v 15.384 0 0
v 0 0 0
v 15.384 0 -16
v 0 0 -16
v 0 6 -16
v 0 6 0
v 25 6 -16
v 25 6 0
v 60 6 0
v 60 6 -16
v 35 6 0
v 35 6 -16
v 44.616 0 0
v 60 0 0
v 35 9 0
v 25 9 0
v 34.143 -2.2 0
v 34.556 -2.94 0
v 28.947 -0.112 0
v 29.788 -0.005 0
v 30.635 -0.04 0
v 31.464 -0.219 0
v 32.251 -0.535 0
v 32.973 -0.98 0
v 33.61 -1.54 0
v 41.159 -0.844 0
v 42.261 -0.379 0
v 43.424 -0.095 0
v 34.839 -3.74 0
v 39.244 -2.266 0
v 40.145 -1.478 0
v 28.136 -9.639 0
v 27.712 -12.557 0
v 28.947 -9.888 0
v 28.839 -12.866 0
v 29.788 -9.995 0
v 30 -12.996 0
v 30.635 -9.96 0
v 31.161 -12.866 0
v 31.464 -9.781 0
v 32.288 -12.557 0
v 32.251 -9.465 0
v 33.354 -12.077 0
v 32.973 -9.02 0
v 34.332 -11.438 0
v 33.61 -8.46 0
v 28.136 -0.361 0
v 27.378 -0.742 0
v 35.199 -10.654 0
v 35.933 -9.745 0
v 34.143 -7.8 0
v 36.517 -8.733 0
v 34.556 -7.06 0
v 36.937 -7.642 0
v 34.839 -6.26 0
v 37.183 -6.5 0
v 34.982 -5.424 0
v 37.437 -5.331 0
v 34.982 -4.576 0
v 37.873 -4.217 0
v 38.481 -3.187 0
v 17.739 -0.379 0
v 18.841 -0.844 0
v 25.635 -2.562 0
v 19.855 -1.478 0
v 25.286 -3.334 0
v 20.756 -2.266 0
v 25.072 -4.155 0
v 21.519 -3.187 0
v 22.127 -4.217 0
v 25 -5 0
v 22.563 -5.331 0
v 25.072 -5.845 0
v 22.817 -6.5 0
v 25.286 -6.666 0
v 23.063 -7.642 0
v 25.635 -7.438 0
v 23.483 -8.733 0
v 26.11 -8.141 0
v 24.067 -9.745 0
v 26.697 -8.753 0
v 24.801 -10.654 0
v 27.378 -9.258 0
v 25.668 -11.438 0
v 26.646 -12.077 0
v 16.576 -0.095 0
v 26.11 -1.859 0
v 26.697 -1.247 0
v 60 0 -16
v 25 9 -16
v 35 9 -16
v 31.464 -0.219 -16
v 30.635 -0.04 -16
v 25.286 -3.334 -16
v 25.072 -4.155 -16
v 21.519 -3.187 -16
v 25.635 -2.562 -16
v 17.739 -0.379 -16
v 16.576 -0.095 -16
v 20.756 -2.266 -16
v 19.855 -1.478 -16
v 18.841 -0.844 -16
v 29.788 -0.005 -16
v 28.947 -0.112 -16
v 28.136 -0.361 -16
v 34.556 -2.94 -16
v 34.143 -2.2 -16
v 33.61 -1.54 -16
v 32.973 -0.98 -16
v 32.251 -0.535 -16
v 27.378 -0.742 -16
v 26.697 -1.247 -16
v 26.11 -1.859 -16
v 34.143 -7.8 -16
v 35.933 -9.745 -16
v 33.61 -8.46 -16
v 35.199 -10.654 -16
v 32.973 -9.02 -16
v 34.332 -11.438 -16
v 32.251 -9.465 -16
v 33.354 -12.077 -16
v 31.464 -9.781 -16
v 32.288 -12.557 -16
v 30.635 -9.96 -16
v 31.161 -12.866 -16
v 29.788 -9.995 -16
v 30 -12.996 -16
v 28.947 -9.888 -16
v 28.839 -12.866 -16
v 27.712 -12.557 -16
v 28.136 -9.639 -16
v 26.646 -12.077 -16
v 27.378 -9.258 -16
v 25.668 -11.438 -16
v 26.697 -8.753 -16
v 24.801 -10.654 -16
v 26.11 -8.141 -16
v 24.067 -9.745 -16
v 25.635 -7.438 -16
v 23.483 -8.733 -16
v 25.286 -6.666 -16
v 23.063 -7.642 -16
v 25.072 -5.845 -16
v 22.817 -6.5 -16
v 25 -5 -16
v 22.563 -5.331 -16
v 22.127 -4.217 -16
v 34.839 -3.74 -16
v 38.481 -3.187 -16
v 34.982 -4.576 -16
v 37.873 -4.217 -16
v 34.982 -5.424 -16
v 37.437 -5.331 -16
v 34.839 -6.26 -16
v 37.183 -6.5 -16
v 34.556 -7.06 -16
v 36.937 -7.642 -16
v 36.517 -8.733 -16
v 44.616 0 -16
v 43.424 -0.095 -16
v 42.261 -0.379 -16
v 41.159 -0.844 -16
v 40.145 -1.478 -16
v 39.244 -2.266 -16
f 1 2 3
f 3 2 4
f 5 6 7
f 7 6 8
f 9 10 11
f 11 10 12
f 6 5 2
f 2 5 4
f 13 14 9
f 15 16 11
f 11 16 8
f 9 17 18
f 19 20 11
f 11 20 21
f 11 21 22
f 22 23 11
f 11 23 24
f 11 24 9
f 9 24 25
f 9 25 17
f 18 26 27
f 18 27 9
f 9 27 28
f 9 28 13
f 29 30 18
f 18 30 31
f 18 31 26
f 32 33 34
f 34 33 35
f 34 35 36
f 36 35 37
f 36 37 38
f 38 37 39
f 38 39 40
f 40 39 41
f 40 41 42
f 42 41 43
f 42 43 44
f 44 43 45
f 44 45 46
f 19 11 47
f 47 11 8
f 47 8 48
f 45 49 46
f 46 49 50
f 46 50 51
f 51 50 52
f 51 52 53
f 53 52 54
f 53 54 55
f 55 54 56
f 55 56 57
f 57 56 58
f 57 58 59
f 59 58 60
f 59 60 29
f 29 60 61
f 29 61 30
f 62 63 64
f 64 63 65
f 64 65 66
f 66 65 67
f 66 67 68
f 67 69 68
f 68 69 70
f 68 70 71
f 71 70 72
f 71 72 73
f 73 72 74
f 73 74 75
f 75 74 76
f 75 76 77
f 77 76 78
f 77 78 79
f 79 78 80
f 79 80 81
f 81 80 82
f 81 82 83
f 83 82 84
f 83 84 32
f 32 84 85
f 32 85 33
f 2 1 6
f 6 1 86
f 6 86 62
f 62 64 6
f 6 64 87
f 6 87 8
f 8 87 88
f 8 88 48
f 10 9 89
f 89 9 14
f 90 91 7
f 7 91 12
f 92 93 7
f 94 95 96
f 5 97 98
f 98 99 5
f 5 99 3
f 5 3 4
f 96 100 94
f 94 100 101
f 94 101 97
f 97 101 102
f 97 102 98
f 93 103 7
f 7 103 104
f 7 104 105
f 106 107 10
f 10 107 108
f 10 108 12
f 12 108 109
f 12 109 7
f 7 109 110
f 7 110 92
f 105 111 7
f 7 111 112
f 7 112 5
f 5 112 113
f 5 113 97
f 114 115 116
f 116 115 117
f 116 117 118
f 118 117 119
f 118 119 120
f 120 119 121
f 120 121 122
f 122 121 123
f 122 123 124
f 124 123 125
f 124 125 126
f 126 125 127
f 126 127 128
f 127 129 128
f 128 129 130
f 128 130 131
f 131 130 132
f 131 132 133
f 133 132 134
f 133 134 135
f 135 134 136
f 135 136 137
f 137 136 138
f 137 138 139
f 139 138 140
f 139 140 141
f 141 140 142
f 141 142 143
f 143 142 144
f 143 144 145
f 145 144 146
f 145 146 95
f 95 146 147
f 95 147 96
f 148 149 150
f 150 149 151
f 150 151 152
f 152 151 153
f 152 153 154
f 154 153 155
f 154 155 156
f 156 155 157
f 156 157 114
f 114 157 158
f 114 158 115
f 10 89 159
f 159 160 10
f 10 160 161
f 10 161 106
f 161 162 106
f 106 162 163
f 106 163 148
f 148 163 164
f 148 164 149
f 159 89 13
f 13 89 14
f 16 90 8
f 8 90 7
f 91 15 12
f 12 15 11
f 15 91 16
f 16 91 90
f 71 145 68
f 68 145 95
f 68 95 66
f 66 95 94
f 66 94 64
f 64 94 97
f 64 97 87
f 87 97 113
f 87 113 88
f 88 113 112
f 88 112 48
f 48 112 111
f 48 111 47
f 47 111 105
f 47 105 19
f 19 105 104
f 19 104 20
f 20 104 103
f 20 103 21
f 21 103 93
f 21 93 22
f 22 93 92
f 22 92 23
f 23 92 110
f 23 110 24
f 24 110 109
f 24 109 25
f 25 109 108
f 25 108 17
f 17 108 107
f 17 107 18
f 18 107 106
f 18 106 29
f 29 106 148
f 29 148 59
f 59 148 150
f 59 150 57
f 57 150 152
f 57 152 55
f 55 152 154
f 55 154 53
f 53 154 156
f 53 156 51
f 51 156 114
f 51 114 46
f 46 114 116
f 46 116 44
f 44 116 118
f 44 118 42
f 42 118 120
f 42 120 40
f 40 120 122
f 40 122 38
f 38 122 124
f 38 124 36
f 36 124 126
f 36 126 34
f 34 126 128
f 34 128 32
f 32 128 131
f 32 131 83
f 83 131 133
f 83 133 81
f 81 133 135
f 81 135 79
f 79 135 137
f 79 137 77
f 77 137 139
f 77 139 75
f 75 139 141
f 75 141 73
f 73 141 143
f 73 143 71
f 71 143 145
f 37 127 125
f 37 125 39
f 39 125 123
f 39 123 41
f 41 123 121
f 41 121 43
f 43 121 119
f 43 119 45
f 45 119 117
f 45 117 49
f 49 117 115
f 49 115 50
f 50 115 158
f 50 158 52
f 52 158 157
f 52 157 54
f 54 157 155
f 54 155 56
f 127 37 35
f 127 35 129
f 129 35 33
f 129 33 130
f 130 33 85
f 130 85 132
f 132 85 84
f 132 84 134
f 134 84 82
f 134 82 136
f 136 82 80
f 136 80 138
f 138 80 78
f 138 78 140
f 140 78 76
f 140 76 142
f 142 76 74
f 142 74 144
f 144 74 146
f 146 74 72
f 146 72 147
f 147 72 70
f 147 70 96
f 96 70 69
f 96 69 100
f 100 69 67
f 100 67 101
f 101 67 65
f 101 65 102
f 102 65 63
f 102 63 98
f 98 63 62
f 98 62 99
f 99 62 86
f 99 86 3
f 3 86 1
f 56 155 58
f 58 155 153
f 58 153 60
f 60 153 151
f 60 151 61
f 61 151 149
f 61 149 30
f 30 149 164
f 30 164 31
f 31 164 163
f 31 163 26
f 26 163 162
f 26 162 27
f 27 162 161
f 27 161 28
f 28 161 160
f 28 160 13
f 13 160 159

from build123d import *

# Parameters (mm, degrees)
SKETCH1_W           = 60
SKETCH1_H           = 16
BOSS_EXTRUDE1_DEPTH = 6
SKETCH2_W           = 10
SKETCH2_H           = 16
BOSS_EXTRUDE2_DEPTH = 3
SKETCH4_W           = 14.5
SKETCH4_H           = 16
BOSS_EXTRUDE3_DEPTH = 13
SKETCH5_R           = 5
CUT_EXTRUDE1_DEPTH  = 64.442887702
FILLET1_R           = 7.5
FILLET2_R           = 7.5


with BuildPart() as part:
    # Sketch1 → Boss-Extrude1 (new body)
    with BuildSketch(Plane(origin=(0, 0, 0), x_dir=(1, 0, 0), z_dir=(0, 1, 0))):
        with Locations((30, 8)):
            Rectangle(SKETCH1_W, SKETCH1_H)
    extrude(amount=BOSS_EXTRUDE1_DEPTH)

    # Sketch2 → Boss-Extrude2 (add)
    with BuildSketch(Plane(origin=(0, 6, 0), x_dir=(1, 0, 0), z_dir=(0, 1, 0))):
        with Locations((30, 8)):
            Rectangle(SKETCH2_W, SKETCH2_H)
    extrude(amount=BOSS_EXTRUDE2_DEPTH)

    # Sketch4 → Boss-Extrude3 (add)
    with BuildSketch(Plane.XZ):
        with Locations((30, -8)):
            Rectangle(SKETCH4_W, SKETCH4_H)
    extrude(amount=BOSS_EXTRUDE3_DEPTH)

    # Sketch5 → Cut-Extrude1 (cut, through all)
    with BuildSketch(Plane(origin=(0, 0, -16), x_dir=(-1, 0, 0), z_dir=(0, 0, -1))):
        with Locations((-30, -5)):
            Circle(SKETCH5_R)
    extrude(amount=-CUT_EXTRUDE1_DEPTH, mode=Mode.SUBTRACT)

    # Fillet1
    # the kernel refuses this fillet: 7.5 mm, written as the material it takes off along each edge
    with BuildSketch(Plane(origin=(22.75, -13, -34.75), x_dir=(0, 1, 0), z_dir=(0, 0, 1))) as fillet1_piece_1:
        with BuildLine():
            CenterArc((FILLET1_R, -FILLET1_R), FILLET1_R, 90, 90)
            Line((0, -FILLET1_R), (0, 0))
            Line((0, 0), (FILLET1_R, 0))
        make_face()
    extrude(amount=53.5, mode=Mode.SUBTRACT)
    with BuildSketch(Plane(origin=(37.25, -13, 18.75), x_dir=(-1, 0, 0), z_dir=(0, 0, -1))) as fillet1_piece_2:
        with BuildLine():
            CenterArc((FILLET1_R, FILLET1_R), FILLET1_R, 180, 90)
            Line((0, FILLET1_R), (0, 0))
            Line((0, 0), (FILLET1_R, 0))
        make_face()
    extrude(amount=53.5, mode=Mode.SUBTRACT)

    # Fillet2
    fillet2_edges = [part.edges().sort_by_distance(p)[0] for p in [
        (22.75, 0, -8),
        (37.25, 0, -8),
    ]]
    fillet(fillet2_edges, radius=FILLET2_R)


solid = part.part
